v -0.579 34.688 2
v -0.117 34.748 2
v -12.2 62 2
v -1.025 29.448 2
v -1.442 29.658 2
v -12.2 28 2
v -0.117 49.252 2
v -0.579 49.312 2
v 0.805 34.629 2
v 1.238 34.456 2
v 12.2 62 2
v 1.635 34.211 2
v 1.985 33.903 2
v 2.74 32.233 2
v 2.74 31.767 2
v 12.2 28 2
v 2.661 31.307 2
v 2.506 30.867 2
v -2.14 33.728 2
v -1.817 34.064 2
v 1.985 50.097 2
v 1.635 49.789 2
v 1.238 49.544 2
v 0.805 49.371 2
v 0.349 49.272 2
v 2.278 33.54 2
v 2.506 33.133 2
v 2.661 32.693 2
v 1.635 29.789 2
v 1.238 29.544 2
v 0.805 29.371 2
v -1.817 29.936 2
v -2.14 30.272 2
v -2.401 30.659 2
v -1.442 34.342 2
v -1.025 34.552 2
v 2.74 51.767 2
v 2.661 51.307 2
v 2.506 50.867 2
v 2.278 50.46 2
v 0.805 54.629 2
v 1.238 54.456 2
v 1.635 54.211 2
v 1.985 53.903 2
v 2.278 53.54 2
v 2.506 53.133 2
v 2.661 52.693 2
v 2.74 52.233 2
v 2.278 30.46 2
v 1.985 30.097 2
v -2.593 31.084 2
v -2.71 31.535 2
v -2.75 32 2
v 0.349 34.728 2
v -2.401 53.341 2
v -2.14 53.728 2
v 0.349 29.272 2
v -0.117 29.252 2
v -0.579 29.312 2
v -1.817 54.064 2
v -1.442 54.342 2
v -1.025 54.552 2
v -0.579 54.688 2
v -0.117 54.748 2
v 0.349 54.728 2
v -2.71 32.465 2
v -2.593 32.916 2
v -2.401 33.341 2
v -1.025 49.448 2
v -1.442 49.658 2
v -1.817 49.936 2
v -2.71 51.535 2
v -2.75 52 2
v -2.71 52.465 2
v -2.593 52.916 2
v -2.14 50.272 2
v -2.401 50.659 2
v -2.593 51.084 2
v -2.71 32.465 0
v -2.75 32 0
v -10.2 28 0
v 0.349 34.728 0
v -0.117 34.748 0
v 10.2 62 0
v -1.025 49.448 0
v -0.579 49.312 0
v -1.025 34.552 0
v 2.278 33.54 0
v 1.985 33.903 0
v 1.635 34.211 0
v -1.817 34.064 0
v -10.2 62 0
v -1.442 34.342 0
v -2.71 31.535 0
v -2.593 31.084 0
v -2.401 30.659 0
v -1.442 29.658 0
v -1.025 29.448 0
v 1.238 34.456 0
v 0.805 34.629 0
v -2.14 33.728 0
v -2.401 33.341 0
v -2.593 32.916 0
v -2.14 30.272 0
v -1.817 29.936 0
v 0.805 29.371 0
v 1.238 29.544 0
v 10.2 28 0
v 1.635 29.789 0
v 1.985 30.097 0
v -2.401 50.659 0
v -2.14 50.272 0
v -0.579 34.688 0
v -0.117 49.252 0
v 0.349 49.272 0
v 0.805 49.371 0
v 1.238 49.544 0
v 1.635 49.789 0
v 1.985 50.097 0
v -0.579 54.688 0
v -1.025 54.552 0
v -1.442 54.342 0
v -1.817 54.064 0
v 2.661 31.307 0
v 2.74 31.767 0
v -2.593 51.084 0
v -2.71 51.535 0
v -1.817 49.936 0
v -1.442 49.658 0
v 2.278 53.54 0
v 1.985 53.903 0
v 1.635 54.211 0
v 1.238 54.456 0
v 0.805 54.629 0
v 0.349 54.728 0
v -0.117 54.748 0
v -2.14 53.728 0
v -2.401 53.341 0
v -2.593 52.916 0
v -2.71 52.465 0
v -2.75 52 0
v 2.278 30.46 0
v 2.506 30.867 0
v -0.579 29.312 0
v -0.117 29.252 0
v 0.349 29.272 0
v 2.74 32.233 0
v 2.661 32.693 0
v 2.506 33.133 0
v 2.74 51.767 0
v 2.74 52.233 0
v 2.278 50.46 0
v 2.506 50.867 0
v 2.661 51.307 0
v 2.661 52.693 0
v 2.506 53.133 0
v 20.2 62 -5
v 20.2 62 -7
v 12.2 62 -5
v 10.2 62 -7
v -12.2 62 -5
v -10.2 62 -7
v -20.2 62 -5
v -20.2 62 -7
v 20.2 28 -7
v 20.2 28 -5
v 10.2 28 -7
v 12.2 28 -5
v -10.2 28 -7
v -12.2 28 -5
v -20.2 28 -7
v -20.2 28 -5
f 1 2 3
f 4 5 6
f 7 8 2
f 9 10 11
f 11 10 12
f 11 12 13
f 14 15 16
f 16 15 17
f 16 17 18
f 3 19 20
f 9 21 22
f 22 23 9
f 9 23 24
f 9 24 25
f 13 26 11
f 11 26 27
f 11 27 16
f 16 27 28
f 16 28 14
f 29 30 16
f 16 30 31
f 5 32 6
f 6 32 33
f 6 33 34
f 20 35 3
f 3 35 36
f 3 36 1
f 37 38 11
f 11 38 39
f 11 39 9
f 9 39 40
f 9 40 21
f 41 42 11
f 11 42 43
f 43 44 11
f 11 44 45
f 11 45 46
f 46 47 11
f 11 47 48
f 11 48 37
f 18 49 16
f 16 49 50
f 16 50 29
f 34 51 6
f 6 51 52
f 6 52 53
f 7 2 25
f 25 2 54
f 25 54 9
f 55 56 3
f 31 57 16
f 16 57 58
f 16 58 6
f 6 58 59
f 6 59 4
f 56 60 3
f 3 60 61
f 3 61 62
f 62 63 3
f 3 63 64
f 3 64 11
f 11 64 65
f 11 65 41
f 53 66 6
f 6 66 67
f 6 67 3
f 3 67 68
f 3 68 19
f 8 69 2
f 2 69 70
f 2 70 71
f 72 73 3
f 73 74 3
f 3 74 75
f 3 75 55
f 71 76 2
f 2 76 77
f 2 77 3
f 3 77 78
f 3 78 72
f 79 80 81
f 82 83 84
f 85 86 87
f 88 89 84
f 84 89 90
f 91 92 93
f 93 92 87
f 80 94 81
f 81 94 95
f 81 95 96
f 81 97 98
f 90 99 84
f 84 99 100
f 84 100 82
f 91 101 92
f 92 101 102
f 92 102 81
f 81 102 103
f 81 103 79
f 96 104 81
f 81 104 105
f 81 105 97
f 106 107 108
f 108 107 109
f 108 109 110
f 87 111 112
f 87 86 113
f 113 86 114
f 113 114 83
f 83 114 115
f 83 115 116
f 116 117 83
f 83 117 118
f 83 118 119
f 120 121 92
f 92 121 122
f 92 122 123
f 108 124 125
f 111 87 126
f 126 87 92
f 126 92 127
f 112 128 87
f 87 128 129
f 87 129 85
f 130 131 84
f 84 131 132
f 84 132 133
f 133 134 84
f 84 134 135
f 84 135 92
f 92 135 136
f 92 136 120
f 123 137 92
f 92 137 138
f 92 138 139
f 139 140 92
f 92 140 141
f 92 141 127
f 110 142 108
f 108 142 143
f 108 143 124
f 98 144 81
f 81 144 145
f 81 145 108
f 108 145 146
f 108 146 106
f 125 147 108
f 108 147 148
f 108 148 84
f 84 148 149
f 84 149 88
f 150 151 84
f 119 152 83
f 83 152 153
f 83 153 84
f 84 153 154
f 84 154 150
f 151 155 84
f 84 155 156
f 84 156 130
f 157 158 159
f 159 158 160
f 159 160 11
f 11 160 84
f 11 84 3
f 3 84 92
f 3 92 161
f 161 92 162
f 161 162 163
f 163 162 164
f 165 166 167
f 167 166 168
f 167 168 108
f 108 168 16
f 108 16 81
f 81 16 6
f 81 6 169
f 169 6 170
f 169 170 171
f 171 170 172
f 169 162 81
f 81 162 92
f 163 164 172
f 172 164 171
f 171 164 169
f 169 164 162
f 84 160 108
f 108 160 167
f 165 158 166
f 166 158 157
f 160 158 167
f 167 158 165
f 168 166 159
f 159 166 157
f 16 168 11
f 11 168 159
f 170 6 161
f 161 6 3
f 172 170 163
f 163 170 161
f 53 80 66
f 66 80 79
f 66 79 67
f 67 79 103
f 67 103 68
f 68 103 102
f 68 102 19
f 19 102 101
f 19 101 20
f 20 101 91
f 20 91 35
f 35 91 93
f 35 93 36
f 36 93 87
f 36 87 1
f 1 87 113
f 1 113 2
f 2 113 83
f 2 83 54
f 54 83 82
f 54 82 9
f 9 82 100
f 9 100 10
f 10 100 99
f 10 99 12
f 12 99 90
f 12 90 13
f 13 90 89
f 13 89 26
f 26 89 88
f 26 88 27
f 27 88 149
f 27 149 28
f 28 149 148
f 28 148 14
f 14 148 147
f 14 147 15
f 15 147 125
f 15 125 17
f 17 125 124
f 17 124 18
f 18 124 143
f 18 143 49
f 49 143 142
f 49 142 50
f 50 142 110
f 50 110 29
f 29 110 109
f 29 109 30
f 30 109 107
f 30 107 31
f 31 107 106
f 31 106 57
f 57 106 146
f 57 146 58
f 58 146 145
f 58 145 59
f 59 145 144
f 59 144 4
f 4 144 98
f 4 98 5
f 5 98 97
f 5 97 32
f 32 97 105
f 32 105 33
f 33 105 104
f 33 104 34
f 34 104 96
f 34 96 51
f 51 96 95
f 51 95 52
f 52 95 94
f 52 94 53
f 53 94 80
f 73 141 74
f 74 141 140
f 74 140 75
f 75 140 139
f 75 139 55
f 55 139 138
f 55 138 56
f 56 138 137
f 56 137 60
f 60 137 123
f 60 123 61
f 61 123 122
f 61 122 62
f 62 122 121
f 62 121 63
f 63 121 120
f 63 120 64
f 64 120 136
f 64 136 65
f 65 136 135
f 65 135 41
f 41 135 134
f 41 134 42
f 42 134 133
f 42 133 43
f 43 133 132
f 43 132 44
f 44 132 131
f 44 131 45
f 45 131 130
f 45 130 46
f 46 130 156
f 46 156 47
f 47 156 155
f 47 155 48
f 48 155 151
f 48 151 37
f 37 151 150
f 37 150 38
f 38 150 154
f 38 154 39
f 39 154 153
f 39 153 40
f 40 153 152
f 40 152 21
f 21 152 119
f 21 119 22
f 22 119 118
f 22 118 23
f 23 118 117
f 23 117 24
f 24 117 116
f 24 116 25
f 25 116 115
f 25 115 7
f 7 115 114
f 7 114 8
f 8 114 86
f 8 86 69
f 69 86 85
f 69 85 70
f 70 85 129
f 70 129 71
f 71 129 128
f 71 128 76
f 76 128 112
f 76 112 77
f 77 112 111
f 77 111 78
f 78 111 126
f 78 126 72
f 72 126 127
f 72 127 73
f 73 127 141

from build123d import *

# Parameters (mm, degrees)
SKETCH1_W             = 20
SKETCH1_H             = 34
SKETCH1_R             = 2.75
BOSS_EXTRUDE1_DEPTH   = 2
SKETCH2_W             = 10
SKETCH2_H             = 34
BOSS_EXTRUDE2_DEPTH   = 2
BOSS_EXTRUDE2_2_DEPTH = 2
SKETCH3_W             = 10
SKETCH3_H             = 34
BOSS_EXTRUDE3_DEPTH   = 7
SKETCH4_W             = 20.4
SKETCH4_H             = 2
BOSS_EXTRUDE4_DEPTH   = 34
CUT_EXTRUDE2_DEPTH    = 41.162669234
SKETCH6_R             = 2.75
CUT_EXTRUDE3_DEPTH    = 66.582314689


with BuildPart() as part:
    # Sketch1 → Boss-Extrude1 (new body)
    with BuildSketch(Plane.XY):
        with Locations((0, 45)):
            Rectangle(SKETCH1_W, SKETCH1_H)
        with Locations((0, 32)):
            Circle(SKETCH1_R, mode=Mode.SUBTRACT)
        with Locations((0, 52)):
            Circle(SKETCH1_R, mode=Mode.SUBTRACT)
    extrude(amount=BOSS_EXTRUDE1_DEPTH)



with BuildPart() as body_2:
    # Sketch2 → Boss-Extrude2 (new body)
    with BuildSketch(Plane(origin=(0, 0, 0), x_dir=(-1, 0, 0), z_dir=(0, 0, -1))):
        with Locations((15.2, 45)):
            Rectangle(SKETCH2_W, SKETCH2_H)
    extrude(amount=-BOSS_EXTRUDE2_DEPTH)



with BuildPart() as body_3:
    # Sketch2 → Boss-Extrude2 2 (new body)
    with BuildSketch(Plane(origin=(0, 0, 0), x_dir=(-1, 0, 0), z_dir=(0, 0, -1))):
        with Locations((-15.2, 45)):
            Rectangle(SKETCH2_W, SKETCH2_H)
    extrude(amount=-BOSS_EXTRUDE2_2_DEPTH)


with BuildPart() as body_2_1:
    add(body_2.part)

    add(body_3.part)  # Boss-Extrude3 merges body 3
    # Sketch3 → Boss-Extrude3 (add)
    with BuildSketch(Plane(origin=(0, 0, 0), x_dir=(-1, 0, 0), z_dir=(0, 0, -1))):
        with Locations((-15.2, 45)):
            Rectangle(SKETCH3_W, SKETCH3_H)
        with Locations((15.2, 45)):
            Rectangle(SKETCH3_W, SKETCH3_H)
    extrude(amount=BOSS_EXTRUDE3_DEPTH)


with BuildPart() as part_1:
    add(part.part)

    add(body_2_1.part)  # Boss-Extrude4 merges body 2
    # Sketch4 → Boss-Extrude4 (add)
    with BuildSketch(Plane(origin=(0, 62, 0), x_dir=(1, 0, 0), z_dir=(0, 1, 0))):
        with Locations((0, -1)):
            Rectangle(SKETCH4_W, SKETCH4_H)
    extrude(amount=-BOSS_EXTRUDE4_DEPTH)

    # Sketch5 → Cut-Extrude2 (cut, through all)
    with BuildSketch(Plane(origin=(0, 62, 0), x_dir=(1, 0, 0), z_dir=(0, 1, 0))):
        Polygon((12.2, 0), (12.2, -2), (20.2, -2), (20.2, 5), (12.2, 5), align=None)
        Polygon((-12.2, -2), (-12.2, 0), (-12.2, 5), (-20.2, 5), (-20.2, -2), align=None)
    extrude(amount=-CUT_EXTRUDE2_DEPTH, mode=Mode.SUBTRACT)

    # Sketch6 → Cut-Extrude3 (cut, through all)
    with BuildSketch(Plane(origin=(0, 0, 0), x_dir=(-1, 0, 0), z_dir=(0, 0, -1))):
        with Locations((0, 52)):
            Circle(SKETCH6_R)
        with Locations((0, 32)):
            Circle(SKETCH6_R)
    extrude(amount=-CUT_EXTRUDE3_DEPTH, mode=Mode.SUBTRACT)


solid = part_1.part
